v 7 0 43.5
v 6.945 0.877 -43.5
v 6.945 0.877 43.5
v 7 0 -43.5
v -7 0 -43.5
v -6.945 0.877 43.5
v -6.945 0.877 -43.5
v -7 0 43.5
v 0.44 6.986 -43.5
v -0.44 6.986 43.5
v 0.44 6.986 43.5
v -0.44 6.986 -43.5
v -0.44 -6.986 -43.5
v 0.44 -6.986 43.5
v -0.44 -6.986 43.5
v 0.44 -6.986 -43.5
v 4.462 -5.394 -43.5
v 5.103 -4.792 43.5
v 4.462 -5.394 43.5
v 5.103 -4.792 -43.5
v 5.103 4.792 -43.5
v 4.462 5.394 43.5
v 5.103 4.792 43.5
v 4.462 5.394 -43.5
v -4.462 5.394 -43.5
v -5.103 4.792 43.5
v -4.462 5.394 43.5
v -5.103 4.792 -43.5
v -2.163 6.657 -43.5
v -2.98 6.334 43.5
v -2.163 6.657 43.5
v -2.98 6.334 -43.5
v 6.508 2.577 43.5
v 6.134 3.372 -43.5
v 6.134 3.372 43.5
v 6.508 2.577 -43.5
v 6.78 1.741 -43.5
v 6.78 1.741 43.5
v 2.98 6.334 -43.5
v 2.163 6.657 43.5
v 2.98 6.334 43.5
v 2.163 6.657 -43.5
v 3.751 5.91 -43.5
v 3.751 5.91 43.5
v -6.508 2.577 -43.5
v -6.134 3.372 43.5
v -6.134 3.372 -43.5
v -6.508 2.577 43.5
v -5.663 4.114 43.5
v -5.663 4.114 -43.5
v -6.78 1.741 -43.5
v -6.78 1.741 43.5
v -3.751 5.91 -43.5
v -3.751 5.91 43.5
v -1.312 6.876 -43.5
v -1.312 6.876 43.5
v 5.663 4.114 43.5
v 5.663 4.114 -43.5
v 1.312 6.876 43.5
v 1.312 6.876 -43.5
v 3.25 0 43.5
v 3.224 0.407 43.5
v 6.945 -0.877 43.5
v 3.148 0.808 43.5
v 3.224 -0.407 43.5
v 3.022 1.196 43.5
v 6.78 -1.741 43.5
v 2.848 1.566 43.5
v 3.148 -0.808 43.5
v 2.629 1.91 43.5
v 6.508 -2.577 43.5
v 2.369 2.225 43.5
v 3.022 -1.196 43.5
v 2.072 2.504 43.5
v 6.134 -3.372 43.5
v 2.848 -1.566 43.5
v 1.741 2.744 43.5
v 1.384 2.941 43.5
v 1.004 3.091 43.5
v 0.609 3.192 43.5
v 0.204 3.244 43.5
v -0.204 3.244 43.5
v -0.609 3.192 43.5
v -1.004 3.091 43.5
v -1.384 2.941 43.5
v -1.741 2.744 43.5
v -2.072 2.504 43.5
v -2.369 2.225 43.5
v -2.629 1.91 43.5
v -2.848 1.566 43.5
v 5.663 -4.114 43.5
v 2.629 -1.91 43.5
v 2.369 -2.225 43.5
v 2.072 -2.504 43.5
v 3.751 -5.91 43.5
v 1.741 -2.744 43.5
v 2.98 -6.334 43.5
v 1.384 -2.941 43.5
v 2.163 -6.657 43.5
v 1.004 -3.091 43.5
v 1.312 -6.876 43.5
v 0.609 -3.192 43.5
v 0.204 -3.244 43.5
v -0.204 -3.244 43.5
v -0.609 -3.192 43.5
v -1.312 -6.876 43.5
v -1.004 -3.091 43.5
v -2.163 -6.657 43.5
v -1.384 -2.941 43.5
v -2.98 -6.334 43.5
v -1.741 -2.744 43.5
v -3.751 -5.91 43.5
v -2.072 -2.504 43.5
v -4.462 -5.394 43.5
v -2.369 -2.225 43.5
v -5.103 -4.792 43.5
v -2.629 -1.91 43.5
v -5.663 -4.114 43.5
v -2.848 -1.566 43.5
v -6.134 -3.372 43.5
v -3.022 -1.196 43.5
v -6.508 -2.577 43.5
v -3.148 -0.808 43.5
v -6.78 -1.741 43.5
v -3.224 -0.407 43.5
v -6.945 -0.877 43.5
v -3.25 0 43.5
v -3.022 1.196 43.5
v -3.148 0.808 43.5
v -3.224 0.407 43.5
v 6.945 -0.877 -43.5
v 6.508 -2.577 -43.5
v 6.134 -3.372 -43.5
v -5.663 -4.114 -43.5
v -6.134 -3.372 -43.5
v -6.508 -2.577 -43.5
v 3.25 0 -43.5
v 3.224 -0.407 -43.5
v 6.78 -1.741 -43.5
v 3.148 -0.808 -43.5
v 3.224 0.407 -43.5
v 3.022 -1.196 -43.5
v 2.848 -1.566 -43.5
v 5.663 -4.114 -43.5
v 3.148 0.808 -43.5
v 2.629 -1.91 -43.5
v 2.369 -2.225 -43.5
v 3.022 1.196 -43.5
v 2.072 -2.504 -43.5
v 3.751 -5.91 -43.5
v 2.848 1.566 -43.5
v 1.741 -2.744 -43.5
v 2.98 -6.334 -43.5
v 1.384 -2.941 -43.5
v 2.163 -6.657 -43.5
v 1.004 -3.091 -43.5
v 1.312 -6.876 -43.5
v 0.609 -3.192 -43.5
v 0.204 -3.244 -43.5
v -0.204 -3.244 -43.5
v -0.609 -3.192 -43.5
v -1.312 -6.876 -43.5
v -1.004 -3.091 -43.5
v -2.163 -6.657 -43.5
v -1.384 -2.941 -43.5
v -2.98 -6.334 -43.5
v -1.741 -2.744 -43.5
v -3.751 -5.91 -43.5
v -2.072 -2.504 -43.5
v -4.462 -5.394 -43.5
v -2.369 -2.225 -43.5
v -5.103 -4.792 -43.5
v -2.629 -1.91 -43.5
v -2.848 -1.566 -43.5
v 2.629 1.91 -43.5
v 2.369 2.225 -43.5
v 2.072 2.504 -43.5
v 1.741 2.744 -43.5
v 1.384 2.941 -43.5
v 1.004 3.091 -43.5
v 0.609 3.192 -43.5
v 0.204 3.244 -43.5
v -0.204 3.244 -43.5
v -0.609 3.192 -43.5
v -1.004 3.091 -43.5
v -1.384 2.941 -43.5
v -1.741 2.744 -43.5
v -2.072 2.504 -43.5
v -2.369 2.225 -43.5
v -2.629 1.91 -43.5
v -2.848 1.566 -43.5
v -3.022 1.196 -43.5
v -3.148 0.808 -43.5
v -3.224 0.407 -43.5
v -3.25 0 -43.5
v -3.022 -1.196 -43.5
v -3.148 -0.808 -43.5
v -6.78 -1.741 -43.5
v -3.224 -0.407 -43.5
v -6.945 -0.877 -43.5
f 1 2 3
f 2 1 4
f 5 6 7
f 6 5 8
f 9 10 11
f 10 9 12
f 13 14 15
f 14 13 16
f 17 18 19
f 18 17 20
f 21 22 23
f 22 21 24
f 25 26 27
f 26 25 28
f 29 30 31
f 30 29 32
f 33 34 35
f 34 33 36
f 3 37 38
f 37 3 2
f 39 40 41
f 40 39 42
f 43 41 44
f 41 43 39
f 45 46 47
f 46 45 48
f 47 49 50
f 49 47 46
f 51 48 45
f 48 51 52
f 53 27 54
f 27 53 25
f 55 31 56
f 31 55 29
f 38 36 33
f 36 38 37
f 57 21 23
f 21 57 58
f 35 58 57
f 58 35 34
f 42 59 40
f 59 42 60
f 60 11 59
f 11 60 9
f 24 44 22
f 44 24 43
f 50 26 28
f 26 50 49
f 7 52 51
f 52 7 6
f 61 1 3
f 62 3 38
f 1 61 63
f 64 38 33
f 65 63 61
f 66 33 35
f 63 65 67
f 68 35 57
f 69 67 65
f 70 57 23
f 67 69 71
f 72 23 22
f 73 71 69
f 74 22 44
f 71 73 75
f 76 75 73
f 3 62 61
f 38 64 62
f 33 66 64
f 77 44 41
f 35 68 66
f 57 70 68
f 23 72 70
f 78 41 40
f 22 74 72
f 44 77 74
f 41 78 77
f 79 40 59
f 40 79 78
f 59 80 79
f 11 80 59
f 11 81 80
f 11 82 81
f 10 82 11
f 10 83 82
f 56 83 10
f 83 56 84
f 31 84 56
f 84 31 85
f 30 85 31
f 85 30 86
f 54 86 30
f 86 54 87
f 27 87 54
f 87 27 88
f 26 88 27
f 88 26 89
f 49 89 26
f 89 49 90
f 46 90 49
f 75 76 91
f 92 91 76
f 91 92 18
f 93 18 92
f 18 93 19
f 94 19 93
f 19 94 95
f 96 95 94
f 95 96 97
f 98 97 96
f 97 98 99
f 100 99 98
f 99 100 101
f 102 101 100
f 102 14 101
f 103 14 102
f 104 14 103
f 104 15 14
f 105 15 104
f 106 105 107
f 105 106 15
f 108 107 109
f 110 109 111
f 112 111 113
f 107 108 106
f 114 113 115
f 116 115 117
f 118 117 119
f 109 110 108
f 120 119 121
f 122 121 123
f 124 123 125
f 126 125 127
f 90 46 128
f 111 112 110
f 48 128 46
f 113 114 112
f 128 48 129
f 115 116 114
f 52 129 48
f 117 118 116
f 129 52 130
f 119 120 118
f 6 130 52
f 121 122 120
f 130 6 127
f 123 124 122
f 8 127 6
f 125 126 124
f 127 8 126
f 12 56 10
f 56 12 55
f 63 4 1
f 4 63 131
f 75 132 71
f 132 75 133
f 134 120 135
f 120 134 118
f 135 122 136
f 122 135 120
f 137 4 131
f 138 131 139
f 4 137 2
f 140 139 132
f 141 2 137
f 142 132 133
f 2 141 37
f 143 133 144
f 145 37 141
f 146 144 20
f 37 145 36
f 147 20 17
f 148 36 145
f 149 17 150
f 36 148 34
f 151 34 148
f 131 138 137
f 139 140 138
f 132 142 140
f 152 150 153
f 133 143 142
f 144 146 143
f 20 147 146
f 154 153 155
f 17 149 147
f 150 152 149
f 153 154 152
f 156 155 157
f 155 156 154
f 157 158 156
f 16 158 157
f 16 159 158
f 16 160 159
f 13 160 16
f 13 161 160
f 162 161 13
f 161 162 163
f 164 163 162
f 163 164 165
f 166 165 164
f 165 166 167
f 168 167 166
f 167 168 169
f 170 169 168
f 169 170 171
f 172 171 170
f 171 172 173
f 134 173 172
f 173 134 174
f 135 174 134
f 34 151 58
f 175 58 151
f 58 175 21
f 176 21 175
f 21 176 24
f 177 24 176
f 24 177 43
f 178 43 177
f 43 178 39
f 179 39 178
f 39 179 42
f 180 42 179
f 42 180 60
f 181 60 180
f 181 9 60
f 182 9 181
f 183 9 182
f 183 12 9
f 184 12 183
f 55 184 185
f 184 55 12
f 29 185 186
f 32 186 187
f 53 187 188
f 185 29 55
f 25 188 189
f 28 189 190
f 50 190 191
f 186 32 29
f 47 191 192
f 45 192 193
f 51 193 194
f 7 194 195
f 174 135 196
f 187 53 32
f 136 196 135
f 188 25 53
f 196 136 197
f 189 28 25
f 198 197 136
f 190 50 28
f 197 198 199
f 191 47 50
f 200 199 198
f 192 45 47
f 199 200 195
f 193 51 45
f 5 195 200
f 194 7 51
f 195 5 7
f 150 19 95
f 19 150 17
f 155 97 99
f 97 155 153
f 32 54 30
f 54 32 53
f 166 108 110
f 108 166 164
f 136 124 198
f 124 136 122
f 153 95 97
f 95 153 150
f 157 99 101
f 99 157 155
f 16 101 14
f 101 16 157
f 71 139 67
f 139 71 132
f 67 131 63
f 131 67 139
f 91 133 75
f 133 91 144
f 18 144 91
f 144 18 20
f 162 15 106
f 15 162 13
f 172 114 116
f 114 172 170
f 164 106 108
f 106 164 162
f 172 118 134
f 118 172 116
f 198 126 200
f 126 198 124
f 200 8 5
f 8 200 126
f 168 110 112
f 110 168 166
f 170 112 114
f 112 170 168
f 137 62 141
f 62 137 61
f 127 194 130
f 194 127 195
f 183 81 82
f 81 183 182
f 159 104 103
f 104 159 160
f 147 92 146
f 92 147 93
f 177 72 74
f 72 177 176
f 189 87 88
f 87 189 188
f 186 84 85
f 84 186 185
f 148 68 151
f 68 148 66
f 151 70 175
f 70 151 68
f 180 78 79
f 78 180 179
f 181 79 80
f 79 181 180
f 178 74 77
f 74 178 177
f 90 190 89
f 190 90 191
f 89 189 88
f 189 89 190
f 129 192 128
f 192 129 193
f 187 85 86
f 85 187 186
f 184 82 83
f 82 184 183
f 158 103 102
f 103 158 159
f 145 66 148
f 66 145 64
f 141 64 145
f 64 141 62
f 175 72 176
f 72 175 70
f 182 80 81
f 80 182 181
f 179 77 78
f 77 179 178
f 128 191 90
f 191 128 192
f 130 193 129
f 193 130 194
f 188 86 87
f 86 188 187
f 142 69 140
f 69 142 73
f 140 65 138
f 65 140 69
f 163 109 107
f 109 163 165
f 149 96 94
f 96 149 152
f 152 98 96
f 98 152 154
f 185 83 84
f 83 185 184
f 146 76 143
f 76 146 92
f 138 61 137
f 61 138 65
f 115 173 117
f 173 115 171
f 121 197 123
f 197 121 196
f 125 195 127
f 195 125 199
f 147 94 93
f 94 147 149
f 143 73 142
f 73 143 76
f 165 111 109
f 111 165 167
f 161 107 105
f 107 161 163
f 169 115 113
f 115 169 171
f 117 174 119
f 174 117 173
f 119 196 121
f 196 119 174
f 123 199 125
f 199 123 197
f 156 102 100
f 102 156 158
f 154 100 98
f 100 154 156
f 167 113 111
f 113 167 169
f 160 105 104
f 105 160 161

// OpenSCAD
$fn = 50;


difference() {
	union() {
		translate(v = [0, 0, -43.5000000000]) {
			cylinder(h = 87, r = 7.0000000000);
		}
	}
	union() {
		translate(v = [0, 0, -100.0000000000]) {
			cylinder(h = 200, r = 3.2500000000);
		}
	}
}
